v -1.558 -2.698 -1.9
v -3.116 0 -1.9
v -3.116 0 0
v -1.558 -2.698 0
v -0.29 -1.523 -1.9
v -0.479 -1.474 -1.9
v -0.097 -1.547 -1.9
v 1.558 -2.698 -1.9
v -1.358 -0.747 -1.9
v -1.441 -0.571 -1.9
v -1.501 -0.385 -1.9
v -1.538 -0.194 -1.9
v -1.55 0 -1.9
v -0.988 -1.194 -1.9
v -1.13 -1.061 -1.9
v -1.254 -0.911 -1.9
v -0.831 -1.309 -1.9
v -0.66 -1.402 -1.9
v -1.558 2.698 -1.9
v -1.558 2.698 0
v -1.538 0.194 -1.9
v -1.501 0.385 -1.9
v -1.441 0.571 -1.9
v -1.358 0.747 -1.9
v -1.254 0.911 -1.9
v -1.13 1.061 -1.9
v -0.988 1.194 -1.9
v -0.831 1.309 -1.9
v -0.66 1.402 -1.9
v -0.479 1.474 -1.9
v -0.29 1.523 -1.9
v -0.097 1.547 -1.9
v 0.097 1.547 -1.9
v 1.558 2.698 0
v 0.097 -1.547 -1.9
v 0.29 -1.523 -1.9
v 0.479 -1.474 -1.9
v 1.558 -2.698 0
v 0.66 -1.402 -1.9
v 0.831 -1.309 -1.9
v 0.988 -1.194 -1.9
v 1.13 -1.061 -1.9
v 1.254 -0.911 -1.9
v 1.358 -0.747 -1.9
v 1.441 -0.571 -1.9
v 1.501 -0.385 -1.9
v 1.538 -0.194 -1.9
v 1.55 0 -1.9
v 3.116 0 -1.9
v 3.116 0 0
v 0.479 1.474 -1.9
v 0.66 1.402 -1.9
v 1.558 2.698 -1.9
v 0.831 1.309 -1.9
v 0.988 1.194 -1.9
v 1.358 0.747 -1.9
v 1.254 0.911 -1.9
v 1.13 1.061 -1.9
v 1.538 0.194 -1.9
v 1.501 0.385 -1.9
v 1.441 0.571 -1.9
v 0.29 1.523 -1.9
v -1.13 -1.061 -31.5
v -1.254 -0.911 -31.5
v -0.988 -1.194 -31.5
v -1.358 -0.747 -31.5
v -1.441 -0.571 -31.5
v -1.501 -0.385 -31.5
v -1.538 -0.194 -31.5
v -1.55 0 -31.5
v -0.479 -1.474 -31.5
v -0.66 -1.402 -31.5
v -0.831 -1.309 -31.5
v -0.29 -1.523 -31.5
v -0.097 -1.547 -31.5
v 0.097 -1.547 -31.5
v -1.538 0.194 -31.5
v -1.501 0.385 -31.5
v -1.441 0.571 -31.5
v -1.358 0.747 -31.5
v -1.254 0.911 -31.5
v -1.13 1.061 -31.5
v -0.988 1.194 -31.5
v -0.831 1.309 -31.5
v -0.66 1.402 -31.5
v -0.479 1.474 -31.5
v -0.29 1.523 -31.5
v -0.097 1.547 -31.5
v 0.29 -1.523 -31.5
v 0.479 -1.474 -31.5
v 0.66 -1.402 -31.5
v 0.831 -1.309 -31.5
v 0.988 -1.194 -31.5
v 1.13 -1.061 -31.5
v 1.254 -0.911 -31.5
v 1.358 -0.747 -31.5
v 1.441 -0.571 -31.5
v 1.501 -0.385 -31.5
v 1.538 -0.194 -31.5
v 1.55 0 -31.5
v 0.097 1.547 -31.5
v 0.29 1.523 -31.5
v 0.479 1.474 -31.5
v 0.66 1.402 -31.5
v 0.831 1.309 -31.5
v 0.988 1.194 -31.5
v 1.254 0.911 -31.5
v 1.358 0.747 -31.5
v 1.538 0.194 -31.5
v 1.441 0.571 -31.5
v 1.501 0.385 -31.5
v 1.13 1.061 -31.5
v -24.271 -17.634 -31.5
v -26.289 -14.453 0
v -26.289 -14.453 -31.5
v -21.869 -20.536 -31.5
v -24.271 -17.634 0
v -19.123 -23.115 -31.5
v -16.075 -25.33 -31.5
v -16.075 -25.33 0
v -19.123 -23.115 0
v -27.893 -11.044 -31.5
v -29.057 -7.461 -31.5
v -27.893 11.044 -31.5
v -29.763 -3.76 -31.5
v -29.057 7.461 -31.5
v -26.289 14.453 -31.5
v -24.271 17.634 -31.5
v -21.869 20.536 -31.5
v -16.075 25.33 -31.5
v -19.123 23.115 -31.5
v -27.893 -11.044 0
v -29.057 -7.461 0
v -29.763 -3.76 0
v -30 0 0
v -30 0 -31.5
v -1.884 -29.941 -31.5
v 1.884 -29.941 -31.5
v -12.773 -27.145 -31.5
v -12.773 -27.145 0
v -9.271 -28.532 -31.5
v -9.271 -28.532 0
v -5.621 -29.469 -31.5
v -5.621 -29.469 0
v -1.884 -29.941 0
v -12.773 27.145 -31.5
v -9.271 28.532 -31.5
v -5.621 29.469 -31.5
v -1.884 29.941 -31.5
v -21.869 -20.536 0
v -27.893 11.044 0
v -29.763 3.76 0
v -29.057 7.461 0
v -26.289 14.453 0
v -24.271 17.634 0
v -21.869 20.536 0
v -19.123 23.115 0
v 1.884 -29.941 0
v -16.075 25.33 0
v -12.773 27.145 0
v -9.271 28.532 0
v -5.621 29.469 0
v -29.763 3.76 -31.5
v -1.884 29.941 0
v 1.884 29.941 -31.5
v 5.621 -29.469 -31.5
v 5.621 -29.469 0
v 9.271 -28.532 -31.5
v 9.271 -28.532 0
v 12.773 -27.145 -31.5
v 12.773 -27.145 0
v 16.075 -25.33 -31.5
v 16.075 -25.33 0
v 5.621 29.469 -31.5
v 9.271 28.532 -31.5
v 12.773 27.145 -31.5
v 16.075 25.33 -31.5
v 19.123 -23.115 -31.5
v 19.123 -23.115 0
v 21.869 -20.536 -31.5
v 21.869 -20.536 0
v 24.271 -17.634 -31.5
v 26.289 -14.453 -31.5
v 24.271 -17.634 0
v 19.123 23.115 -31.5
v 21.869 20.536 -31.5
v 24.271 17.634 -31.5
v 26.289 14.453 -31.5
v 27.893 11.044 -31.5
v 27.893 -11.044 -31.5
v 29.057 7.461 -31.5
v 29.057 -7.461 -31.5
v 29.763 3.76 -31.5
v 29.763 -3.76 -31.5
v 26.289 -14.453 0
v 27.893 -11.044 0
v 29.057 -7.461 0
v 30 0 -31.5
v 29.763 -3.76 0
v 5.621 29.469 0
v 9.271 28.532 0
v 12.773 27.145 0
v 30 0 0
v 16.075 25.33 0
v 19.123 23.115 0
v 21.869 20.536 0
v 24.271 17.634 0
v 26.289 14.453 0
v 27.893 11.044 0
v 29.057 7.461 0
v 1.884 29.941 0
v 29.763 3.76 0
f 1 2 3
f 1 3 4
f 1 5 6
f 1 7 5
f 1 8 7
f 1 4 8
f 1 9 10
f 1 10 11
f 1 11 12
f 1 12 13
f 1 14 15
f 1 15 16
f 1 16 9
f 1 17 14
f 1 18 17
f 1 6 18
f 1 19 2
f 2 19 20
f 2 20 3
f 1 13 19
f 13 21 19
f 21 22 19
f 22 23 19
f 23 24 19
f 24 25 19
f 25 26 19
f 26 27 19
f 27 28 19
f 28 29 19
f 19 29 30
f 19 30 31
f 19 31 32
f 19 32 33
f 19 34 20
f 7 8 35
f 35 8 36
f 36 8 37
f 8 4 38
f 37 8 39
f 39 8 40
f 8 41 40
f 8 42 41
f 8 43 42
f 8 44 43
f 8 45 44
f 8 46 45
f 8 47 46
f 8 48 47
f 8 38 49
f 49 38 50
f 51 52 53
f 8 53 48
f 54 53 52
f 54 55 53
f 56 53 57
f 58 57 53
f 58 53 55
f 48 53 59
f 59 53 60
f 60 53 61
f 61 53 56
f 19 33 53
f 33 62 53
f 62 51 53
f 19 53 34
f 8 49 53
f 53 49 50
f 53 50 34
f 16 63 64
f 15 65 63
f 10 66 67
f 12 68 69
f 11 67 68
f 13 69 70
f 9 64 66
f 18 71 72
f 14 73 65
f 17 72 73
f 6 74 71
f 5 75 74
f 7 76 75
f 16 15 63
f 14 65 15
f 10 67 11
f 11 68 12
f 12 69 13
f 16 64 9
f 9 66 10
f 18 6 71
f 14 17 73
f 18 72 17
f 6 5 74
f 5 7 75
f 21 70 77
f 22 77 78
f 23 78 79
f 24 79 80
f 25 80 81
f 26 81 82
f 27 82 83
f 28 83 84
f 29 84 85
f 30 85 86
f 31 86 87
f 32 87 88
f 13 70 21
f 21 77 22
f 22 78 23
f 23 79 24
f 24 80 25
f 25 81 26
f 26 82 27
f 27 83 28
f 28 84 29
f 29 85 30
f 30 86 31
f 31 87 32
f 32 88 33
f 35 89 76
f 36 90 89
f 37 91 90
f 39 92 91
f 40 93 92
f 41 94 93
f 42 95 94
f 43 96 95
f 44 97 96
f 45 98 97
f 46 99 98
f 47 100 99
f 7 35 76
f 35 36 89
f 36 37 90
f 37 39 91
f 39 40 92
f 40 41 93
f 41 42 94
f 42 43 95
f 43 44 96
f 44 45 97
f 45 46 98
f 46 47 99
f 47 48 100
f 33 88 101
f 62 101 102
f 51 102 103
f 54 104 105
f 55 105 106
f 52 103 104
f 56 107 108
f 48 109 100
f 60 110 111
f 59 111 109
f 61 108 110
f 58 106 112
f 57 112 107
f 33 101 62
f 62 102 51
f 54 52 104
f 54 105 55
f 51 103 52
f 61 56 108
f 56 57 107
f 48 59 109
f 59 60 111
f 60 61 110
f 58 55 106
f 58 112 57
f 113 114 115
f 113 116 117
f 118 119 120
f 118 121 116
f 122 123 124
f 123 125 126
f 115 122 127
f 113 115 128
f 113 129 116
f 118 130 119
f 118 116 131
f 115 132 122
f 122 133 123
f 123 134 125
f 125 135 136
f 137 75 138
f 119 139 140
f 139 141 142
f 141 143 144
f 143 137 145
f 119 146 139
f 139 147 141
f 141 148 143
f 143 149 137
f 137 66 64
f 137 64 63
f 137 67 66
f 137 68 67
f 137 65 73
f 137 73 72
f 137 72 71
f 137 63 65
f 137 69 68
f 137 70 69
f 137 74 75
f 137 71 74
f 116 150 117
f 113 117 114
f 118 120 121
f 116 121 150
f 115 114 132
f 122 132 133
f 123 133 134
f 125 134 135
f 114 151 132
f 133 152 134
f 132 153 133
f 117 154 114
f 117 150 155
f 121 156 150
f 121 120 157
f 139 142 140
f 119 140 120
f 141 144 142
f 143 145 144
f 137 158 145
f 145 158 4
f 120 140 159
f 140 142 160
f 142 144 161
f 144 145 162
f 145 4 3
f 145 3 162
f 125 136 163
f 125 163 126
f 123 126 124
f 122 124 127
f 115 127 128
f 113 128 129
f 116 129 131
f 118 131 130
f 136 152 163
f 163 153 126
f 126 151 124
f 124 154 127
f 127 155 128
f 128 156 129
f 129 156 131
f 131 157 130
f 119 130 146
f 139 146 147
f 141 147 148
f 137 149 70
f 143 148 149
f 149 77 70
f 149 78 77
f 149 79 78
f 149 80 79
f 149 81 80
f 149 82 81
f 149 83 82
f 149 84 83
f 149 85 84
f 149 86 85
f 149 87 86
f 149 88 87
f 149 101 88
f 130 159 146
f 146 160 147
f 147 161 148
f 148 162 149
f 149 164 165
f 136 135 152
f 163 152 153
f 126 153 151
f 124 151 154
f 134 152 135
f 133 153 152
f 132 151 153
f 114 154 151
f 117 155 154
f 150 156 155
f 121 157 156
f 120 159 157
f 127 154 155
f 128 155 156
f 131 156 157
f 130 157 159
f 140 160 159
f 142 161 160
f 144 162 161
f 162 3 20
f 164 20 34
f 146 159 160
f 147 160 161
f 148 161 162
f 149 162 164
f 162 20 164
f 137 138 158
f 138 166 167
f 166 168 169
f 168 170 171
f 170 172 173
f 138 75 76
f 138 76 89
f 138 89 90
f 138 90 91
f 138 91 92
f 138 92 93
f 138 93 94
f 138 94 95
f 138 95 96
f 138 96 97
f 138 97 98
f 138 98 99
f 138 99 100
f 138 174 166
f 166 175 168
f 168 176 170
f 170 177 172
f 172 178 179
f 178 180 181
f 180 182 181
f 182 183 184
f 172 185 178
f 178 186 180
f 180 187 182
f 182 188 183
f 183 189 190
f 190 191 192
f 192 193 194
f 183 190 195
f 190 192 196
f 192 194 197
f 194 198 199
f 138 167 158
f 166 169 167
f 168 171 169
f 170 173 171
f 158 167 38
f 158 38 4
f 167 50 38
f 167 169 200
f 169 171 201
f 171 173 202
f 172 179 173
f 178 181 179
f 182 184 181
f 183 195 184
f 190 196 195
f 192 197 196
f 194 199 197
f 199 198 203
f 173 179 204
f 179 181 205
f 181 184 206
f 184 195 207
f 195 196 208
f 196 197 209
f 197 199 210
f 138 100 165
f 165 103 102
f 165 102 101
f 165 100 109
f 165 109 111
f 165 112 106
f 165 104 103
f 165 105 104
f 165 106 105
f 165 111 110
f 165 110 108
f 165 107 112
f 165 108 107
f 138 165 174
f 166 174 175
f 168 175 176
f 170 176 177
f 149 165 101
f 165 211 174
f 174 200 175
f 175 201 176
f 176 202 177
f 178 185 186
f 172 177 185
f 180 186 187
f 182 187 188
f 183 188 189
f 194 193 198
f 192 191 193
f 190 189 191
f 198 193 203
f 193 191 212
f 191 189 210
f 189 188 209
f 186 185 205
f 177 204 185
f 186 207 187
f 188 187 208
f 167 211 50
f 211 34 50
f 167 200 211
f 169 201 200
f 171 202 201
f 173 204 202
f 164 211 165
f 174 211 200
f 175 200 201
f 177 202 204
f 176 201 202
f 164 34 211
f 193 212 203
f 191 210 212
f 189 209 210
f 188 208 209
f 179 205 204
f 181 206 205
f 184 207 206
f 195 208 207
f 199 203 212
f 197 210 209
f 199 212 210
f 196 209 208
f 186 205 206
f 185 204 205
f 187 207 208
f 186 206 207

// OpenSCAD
$fn = 50;

difference() {
	union() {
		translate(v = [0, 0, -31.5]) {
			cylinder(h = 31.5, r = 30.0);
		}
	}
	union() {
		translate(v = [0, 0, 0]) {
			rotate(a = [0, 0, 0]) {
				difference() {
					union() {
						translate(v = [0, 0, -1.9]) {
							linear_extrude(height = 1.9) {
								polygon(points = [[3.1158, 0.0], [1.5579000000000005, 2.698361953111554], [-1.5578999999999994, 2.6983619531115544], [-3.1158, 3.815754496783323e-16], [-1.5579000000000014, -2.6983619531115535], [1.557899999999998, -2.6983619531115552]]);
							}
						}
					}
					union();
				}
			}
		}
		#translate(v = [0, 0, -100.0]) {
			cylinder(h = 200, r = 1.55);
		}
	}
}
